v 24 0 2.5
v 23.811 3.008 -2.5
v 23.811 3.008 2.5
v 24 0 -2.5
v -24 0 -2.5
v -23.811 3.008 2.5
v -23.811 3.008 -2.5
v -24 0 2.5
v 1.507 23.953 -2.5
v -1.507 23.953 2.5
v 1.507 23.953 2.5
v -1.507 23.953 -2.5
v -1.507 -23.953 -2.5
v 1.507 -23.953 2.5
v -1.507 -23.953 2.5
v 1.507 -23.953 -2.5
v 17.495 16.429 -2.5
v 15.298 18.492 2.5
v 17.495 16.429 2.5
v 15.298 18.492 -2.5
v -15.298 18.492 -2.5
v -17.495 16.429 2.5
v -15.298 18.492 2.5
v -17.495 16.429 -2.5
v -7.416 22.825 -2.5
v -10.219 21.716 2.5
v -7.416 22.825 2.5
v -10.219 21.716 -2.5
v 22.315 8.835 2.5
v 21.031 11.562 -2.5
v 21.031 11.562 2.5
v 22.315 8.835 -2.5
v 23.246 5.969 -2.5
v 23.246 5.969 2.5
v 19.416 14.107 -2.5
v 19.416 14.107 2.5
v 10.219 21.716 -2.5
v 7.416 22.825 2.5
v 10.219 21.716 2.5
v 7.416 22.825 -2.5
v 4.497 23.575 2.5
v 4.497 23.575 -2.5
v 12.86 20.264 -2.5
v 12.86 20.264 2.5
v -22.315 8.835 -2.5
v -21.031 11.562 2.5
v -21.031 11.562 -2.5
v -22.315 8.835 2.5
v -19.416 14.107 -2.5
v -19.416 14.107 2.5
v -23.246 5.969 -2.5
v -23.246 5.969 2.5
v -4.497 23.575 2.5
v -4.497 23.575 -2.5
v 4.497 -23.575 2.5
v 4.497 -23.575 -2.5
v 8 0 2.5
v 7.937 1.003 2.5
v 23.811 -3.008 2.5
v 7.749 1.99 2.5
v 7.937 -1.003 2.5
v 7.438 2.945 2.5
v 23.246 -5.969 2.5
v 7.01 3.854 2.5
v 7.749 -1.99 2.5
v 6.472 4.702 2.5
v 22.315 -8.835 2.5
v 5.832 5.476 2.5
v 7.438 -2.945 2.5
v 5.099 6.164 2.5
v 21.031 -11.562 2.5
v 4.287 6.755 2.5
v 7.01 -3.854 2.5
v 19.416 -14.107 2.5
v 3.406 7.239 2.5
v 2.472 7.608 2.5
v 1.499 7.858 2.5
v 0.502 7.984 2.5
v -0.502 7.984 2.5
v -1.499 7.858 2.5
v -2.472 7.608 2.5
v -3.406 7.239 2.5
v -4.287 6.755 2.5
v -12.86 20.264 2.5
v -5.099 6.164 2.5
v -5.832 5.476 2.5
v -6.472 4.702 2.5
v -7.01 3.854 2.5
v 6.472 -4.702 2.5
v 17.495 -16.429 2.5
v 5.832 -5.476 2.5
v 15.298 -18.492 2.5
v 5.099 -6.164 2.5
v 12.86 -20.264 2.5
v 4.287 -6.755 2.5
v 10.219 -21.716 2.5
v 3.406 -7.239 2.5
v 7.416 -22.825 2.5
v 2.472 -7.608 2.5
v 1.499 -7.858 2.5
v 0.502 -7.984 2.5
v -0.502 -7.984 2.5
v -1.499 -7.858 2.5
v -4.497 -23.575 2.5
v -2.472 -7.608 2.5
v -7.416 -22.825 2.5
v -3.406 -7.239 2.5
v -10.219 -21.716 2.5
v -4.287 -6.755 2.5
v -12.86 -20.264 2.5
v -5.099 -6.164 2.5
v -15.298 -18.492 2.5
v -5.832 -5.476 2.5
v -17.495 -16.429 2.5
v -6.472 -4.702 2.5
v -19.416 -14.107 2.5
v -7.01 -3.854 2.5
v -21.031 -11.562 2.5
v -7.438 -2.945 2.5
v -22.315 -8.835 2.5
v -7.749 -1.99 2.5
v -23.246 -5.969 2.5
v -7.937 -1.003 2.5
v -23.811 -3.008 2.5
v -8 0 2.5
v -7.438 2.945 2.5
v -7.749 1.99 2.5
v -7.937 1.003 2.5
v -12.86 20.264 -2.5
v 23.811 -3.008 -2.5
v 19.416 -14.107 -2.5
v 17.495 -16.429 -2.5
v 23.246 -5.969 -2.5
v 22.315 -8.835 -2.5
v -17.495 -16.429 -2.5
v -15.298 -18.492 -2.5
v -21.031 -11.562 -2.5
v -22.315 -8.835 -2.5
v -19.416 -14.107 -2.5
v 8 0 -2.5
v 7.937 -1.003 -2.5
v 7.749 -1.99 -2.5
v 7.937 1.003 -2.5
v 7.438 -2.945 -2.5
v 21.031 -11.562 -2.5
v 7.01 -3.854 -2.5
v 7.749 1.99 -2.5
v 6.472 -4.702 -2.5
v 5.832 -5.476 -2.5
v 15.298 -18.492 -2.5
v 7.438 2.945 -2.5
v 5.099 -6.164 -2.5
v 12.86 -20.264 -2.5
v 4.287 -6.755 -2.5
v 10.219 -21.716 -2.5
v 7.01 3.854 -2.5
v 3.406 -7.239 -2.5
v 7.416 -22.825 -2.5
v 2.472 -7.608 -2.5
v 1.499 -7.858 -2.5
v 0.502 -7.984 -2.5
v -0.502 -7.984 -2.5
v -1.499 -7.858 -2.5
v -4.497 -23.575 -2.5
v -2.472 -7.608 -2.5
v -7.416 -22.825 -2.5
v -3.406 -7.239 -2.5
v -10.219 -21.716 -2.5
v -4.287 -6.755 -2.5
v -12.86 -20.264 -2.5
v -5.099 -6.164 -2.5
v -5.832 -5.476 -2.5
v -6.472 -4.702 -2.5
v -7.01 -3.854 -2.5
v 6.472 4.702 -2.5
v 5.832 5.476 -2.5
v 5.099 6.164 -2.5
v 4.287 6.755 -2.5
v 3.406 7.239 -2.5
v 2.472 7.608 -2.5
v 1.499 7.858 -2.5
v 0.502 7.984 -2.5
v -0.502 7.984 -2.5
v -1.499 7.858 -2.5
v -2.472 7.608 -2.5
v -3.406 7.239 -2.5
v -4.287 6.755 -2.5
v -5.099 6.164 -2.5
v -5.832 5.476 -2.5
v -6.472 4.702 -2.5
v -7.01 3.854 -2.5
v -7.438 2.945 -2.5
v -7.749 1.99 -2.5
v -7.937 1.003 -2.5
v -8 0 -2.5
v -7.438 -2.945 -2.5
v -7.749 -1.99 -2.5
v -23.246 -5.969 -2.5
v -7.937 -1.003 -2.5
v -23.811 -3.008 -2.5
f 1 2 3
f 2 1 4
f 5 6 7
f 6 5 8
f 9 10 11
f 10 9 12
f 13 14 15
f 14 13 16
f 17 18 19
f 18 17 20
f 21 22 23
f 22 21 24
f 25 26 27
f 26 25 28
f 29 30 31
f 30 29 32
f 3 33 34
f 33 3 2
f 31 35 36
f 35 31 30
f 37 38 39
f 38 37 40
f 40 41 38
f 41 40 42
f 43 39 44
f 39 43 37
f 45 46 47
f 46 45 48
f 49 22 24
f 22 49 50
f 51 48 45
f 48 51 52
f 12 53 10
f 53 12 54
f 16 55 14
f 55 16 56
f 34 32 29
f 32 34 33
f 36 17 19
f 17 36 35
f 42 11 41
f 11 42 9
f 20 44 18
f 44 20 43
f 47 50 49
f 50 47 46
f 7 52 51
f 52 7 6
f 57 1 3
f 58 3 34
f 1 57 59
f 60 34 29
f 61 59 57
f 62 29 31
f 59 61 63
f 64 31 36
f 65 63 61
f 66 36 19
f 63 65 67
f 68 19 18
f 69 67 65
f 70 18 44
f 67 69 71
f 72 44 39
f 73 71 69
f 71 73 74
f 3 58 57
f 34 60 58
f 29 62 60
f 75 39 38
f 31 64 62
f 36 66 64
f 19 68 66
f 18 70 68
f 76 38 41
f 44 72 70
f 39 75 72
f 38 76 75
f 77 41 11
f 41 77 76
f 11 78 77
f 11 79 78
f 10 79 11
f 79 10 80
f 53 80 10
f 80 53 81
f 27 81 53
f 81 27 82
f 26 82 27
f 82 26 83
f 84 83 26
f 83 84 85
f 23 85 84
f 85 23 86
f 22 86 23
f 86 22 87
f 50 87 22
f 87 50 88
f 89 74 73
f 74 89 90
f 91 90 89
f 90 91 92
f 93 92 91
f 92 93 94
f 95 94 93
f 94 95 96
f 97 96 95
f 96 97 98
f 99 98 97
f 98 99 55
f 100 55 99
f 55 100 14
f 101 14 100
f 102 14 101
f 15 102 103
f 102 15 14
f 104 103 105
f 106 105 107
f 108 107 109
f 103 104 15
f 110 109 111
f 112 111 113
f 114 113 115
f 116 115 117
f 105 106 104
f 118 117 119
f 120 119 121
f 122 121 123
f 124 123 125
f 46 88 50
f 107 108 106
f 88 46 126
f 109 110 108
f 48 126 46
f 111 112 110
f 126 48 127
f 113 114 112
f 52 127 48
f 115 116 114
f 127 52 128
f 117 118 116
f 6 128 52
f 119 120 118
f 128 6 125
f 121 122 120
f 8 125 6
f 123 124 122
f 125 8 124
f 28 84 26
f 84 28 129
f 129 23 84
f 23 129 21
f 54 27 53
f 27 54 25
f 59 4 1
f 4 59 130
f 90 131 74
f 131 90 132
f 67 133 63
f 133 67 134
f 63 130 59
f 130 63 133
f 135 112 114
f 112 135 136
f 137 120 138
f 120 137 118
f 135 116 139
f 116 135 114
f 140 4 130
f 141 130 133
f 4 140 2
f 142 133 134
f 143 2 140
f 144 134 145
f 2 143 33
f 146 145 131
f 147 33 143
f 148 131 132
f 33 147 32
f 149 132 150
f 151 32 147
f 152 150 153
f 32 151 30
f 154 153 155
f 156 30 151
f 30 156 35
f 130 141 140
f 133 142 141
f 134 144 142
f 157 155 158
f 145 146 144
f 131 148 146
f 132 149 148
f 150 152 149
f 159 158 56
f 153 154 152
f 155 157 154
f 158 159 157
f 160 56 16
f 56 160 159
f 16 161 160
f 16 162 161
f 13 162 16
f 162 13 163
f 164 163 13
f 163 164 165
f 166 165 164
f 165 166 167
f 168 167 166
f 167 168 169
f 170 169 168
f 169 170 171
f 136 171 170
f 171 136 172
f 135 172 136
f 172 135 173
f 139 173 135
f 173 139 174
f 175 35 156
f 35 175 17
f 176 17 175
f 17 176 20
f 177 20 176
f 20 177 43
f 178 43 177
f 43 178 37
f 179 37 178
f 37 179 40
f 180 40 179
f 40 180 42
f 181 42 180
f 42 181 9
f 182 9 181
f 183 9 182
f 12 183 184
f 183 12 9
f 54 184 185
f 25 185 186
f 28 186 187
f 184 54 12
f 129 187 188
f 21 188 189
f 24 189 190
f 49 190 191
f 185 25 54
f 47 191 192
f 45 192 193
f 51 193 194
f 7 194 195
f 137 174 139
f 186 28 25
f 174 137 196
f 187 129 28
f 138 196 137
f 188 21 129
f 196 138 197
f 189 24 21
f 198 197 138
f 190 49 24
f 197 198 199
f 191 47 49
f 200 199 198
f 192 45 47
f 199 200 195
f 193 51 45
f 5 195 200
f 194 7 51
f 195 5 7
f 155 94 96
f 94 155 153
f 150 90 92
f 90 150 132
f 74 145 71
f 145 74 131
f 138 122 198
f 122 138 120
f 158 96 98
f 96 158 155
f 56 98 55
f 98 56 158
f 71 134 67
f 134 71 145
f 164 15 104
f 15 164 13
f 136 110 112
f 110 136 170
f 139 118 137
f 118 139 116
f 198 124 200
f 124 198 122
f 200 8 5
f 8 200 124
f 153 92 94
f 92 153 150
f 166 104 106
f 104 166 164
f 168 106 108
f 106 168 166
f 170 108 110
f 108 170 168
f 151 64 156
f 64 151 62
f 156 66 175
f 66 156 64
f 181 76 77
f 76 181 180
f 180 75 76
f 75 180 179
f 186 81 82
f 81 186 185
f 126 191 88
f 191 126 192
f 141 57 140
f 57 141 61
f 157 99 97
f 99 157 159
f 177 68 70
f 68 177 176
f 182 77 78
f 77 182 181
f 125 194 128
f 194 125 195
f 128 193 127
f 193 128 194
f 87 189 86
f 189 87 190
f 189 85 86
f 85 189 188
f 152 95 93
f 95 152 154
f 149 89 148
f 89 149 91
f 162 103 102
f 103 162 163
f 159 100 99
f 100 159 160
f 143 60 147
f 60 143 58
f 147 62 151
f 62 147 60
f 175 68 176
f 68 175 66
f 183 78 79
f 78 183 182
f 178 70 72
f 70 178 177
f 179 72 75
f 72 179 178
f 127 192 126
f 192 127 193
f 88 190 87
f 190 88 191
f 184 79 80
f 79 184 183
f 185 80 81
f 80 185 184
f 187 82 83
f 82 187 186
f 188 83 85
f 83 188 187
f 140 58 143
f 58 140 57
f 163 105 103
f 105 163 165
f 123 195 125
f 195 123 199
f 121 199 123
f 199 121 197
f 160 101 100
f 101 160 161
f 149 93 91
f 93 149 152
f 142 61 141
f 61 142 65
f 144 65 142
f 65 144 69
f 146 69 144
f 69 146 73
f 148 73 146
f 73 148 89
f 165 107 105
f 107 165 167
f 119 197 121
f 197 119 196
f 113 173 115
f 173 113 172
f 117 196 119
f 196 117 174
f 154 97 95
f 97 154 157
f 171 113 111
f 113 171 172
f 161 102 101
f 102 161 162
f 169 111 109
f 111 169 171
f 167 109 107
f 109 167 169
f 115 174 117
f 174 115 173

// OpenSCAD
$fn = 50;


difference() {
	union() {
		translate(v = [0, 0, -2.5000000000]) {
			cylinder(h = 5, r = 24.0000000000);
		}
	}
	union() {
		translate(v = [0, 0, -100.0000000000]) {
			cylinder(h = 200, r = 8);
		}
	}
}
